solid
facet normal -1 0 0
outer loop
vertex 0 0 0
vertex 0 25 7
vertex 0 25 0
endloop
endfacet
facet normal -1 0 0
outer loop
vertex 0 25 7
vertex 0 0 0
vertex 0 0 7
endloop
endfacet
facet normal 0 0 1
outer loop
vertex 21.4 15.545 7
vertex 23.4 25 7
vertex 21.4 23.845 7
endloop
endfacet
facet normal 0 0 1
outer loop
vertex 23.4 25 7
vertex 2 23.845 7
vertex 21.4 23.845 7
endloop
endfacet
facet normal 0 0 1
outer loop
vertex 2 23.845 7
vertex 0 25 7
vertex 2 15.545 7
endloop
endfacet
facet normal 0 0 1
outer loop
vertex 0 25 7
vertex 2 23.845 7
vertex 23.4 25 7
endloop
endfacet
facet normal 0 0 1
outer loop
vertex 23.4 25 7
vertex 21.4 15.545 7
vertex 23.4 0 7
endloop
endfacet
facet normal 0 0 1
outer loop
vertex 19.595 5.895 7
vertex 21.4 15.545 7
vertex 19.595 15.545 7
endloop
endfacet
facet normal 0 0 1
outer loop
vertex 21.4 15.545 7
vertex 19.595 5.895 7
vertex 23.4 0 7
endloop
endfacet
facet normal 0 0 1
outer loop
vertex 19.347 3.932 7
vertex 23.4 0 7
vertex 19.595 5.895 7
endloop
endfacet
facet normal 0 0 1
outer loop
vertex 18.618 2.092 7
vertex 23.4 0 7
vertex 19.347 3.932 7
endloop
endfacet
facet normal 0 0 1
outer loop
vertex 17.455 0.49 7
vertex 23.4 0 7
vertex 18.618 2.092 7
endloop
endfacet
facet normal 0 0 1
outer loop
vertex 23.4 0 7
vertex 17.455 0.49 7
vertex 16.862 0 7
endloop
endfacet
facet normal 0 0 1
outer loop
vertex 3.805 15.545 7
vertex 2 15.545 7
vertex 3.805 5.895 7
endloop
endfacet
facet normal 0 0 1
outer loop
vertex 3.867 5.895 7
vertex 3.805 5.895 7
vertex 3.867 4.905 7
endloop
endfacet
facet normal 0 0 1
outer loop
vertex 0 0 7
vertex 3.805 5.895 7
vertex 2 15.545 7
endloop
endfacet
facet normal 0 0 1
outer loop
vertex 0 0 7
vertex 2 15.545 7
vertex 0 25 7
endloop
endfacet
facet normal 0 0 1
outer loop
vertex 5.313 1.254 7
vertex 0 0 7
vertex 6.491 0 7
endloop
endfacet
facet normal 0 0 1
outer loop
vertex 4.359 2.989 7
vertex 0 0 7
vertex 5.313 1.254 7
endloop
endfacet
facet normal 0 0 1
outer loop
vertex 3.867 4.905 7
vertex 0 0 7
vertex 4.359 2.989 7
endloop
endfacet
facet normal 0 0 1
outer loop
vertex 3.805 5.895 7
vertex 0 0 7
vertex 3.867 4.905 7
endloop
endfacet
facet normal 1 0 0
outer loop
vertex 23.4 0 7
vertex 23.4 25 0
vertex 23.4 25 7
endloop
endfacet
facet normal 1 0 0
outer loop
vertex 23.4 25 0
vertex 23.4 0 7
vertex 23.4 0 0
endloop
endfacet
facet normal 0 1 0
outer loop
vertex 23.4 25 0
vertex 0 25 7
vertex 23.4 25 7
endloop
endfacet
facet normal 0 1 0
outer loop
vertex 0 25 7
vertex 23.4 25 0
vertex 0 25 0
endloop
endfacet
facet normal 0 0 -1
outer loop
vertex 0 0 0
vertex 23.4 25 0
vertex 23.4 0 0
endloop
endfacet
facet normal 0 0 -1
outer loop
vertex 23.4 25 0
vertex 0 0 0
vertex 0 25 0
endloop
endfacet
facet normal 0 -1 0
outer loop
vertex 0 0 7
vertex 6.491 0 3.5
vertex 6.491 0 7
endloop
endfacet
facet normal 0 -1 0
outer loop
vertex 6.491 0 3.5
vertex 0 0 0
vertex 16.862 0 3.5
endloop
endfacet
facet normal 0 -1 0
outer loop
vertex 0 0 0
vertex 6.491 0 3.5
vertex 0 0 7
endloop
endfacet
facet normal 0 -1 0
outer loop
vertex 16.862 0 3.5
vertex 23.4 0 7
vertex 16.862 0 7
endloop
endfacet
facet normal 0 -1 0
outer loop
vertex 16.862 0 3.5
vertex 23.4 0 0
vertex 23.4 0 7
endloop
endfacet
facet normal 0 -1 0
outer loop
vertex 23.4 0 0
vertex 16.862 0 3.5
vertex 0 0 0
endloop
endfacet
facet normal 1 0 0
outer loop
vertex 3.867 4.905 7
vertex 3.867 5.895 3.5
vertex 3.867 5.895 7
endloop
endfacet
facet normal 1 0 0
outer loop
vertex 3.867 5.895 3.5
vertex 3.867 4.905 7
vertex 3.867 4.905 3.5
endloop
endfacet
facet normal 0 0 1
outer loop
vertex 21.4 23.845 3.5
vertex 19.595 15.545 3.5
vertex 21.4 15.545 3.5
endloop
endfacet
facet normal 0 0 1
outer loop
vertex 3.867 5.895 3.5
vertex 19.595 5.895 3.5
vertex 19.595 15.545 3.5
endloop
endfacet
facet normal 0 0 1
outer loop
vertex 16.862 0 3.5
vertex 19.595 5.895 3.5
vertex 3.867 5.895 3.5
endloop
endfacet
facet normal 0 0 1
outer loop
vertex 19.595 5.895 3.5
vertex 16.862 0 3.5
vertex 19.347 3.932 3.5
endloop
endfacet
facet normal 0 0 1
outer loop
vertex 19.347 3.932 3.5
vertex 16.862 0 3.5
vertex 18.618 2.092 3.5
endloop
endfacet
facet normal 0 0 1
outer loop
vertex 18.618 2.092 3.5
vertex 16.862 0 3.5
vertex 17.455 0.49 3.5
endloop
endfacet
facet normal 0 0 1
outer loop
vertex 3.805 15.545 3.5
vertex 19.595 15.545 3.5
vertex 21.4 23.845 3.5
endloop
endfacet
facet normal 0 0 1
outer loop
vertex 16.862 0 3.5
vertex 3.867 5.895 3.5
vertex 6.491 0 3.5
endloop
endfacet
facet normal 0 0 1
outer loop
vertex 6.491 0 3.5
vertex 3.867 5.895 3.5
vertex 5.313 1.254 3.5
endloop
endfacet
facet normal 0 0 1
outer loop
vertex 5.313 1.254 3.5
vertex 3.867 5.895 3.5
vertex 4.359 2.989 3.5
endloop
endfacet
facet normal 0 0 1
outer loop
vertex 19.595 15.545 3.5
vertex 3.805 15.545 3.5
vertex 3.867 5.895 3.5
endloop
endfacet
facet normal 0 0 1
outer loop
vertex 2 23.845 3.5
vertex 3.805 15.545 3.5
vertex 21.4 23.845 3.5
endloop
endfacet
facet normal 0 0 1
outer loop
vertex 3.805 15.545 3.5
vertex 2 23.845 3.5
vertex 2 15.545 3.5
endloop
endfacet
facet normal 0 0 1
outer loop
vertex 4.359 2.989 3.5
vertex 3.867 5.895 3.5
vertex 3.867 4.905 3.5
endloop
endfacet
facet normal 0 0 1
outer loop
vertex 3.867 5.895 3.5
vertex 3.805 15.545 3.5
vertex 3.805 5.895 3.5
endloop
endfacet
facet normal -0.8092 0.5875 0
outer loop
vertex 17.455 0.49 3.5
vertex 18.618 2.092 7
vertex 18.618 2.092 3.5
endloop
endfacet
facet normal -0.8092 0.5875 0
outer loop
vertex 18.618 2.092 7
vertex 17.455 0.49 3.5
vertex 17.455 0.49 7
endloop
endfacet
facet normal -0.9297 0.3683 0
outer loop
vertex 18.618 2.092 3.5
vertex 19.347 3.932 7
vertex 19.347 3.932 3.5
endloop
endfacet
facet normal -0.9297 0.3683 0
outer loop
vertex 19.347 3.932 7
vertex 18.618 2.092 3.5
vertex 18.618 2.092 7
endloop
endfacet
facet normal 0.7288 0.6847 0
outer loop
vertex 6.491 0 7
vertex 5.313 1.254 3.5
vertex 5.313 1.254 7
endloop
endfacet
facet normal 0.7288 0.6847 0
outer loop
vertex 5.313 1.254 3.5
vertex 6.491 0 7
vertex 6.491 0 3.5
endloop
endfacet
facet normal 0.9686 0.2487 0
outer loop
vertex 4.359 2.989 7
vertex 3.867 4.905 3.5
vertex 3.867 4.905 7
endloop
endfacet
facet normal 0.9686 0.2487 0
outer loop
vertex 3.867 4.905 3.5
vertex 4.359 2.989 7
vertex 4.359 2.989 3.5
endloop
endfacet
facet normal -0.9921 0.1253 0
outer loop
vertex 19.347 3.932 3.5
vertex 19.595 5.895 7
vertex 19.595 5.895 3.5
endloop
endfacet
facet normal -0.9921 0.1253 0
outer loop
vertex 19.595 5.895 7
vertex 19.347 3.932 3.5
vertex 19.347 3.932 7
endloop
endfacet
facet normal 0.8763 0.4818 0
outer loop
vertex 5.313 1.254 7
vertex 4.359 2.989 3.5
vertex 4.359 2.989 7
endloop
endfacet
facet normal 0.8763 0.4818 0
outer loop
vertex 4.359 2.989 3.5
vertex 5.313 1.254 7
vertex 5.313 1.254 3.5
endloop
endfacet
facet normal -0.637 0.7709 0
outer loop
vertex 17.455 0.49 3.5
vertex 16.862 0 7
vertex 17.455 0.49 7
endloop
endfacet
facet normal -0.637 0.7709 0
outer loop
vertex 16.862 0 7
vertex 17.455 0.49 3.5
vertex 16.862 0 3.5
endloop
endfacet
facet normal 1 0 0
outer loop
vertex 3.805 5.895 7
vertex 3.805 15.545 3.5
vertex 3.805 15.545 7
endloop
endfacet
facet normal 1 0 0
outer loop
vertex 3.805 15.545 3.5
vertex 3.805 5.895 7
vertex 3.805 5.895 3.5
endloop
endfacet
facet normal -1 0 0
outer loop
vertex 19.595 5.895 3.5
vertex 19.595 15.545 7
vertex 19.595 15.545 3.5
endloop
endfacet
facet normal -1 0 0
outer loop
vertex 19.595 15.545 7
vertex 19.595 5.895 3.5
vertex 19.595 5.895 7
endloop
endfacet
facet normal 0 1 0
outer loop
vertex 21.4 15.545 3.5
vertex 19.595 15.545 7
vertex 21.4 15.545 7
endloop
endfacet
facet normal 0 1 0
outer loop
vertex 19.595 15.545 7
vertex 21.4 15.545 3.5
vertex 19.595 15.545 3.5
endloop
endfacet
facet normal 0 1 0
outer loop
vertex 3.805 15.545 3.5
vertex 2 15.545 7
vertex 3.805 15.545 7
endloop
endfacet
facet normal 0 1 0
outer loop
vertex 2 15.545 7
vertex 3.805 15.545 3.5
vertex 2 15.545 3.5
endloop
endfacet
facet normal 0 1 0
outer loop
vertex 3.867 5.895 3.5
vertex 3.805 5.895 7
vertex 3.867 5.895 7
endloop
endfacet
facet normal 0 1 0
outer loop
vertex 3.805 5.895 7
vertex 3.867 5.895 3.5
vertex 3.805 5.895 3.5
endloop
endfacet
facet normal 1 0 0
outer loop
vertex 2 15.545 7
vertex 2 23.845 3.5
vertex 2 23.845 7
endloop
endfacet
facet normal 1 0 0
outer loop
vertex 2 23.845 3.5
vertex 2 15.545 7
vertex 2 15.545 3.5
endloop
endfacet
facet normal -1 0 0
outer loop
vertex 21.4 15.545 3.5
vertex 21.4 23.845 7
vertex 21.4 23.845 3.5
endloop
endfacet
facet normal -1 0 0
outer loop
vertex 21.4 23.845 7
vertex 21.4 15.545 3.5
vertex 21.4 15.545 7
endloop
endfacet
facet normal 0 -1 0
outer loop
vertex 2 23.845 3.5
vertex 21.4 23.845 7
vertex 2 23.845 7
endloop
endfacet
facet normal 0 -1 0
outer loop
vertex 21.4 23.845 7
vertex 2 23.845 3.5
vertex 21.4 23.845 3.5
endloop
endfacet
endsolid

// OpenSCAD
length = 18.9 + .5 + 4;
width = 25;
height = 7;

//Based on magnet size:
magnetBaseInnerDiameter = 15.4;
magnetHeight = 4.0;

//grave tokens
//	12 
//	two stacks of six
//	single 2.05 thick 
//	one stack 12.44 thick
//	total length 25 even 
//	3 sections:
//		1. rounded tip - diameter 15.29
//		2. body - 15.29 width, 9.15 height
//		3. base - 18.9 width, 7.8 height

roundedTipDiameter = 15.29 + .5;
roundedTipOffset = 2;

bodyWidth = 15.29 + .5;
bodyLength = 9.15 + .5;

baseWidth = 18.9 + .5;
baseLength = 7.8 + .5;

//graveHeight = 12.44 + .5;
graveHeight = 3 + .5;

spaceBetweenCircles = 2;

padding = (baseWidth - bodyWidth) / 2;

difference(){
    cube([length, width, height]);

    translate(
        [
            spaceBetweenCircles + roundedTipDiameter/2 + padding,  
            roundedTipDiameter/2 - roundedTipOffset,
            height - graveHeight
        ])
        cylinder(graveHeight, d=roundedTipDiameter);

    
    translate(
        [   
            spaceBetweenCircles + padding,
            roundedTipDiameter/2 - roundedTipOffset,
            height - graveHeight
        ])
        cube([bodyWidth,bodyLength,graveHeight]);
    
    translate(
        [   
            spaceBetweenCircles,
            roundedTipDiameter/2 - roundedTipOffset + bodyLength,
            height - graveHeight
        ])
        cube([baseWidth,baseLength,graveHeight]);   
   

        

}
